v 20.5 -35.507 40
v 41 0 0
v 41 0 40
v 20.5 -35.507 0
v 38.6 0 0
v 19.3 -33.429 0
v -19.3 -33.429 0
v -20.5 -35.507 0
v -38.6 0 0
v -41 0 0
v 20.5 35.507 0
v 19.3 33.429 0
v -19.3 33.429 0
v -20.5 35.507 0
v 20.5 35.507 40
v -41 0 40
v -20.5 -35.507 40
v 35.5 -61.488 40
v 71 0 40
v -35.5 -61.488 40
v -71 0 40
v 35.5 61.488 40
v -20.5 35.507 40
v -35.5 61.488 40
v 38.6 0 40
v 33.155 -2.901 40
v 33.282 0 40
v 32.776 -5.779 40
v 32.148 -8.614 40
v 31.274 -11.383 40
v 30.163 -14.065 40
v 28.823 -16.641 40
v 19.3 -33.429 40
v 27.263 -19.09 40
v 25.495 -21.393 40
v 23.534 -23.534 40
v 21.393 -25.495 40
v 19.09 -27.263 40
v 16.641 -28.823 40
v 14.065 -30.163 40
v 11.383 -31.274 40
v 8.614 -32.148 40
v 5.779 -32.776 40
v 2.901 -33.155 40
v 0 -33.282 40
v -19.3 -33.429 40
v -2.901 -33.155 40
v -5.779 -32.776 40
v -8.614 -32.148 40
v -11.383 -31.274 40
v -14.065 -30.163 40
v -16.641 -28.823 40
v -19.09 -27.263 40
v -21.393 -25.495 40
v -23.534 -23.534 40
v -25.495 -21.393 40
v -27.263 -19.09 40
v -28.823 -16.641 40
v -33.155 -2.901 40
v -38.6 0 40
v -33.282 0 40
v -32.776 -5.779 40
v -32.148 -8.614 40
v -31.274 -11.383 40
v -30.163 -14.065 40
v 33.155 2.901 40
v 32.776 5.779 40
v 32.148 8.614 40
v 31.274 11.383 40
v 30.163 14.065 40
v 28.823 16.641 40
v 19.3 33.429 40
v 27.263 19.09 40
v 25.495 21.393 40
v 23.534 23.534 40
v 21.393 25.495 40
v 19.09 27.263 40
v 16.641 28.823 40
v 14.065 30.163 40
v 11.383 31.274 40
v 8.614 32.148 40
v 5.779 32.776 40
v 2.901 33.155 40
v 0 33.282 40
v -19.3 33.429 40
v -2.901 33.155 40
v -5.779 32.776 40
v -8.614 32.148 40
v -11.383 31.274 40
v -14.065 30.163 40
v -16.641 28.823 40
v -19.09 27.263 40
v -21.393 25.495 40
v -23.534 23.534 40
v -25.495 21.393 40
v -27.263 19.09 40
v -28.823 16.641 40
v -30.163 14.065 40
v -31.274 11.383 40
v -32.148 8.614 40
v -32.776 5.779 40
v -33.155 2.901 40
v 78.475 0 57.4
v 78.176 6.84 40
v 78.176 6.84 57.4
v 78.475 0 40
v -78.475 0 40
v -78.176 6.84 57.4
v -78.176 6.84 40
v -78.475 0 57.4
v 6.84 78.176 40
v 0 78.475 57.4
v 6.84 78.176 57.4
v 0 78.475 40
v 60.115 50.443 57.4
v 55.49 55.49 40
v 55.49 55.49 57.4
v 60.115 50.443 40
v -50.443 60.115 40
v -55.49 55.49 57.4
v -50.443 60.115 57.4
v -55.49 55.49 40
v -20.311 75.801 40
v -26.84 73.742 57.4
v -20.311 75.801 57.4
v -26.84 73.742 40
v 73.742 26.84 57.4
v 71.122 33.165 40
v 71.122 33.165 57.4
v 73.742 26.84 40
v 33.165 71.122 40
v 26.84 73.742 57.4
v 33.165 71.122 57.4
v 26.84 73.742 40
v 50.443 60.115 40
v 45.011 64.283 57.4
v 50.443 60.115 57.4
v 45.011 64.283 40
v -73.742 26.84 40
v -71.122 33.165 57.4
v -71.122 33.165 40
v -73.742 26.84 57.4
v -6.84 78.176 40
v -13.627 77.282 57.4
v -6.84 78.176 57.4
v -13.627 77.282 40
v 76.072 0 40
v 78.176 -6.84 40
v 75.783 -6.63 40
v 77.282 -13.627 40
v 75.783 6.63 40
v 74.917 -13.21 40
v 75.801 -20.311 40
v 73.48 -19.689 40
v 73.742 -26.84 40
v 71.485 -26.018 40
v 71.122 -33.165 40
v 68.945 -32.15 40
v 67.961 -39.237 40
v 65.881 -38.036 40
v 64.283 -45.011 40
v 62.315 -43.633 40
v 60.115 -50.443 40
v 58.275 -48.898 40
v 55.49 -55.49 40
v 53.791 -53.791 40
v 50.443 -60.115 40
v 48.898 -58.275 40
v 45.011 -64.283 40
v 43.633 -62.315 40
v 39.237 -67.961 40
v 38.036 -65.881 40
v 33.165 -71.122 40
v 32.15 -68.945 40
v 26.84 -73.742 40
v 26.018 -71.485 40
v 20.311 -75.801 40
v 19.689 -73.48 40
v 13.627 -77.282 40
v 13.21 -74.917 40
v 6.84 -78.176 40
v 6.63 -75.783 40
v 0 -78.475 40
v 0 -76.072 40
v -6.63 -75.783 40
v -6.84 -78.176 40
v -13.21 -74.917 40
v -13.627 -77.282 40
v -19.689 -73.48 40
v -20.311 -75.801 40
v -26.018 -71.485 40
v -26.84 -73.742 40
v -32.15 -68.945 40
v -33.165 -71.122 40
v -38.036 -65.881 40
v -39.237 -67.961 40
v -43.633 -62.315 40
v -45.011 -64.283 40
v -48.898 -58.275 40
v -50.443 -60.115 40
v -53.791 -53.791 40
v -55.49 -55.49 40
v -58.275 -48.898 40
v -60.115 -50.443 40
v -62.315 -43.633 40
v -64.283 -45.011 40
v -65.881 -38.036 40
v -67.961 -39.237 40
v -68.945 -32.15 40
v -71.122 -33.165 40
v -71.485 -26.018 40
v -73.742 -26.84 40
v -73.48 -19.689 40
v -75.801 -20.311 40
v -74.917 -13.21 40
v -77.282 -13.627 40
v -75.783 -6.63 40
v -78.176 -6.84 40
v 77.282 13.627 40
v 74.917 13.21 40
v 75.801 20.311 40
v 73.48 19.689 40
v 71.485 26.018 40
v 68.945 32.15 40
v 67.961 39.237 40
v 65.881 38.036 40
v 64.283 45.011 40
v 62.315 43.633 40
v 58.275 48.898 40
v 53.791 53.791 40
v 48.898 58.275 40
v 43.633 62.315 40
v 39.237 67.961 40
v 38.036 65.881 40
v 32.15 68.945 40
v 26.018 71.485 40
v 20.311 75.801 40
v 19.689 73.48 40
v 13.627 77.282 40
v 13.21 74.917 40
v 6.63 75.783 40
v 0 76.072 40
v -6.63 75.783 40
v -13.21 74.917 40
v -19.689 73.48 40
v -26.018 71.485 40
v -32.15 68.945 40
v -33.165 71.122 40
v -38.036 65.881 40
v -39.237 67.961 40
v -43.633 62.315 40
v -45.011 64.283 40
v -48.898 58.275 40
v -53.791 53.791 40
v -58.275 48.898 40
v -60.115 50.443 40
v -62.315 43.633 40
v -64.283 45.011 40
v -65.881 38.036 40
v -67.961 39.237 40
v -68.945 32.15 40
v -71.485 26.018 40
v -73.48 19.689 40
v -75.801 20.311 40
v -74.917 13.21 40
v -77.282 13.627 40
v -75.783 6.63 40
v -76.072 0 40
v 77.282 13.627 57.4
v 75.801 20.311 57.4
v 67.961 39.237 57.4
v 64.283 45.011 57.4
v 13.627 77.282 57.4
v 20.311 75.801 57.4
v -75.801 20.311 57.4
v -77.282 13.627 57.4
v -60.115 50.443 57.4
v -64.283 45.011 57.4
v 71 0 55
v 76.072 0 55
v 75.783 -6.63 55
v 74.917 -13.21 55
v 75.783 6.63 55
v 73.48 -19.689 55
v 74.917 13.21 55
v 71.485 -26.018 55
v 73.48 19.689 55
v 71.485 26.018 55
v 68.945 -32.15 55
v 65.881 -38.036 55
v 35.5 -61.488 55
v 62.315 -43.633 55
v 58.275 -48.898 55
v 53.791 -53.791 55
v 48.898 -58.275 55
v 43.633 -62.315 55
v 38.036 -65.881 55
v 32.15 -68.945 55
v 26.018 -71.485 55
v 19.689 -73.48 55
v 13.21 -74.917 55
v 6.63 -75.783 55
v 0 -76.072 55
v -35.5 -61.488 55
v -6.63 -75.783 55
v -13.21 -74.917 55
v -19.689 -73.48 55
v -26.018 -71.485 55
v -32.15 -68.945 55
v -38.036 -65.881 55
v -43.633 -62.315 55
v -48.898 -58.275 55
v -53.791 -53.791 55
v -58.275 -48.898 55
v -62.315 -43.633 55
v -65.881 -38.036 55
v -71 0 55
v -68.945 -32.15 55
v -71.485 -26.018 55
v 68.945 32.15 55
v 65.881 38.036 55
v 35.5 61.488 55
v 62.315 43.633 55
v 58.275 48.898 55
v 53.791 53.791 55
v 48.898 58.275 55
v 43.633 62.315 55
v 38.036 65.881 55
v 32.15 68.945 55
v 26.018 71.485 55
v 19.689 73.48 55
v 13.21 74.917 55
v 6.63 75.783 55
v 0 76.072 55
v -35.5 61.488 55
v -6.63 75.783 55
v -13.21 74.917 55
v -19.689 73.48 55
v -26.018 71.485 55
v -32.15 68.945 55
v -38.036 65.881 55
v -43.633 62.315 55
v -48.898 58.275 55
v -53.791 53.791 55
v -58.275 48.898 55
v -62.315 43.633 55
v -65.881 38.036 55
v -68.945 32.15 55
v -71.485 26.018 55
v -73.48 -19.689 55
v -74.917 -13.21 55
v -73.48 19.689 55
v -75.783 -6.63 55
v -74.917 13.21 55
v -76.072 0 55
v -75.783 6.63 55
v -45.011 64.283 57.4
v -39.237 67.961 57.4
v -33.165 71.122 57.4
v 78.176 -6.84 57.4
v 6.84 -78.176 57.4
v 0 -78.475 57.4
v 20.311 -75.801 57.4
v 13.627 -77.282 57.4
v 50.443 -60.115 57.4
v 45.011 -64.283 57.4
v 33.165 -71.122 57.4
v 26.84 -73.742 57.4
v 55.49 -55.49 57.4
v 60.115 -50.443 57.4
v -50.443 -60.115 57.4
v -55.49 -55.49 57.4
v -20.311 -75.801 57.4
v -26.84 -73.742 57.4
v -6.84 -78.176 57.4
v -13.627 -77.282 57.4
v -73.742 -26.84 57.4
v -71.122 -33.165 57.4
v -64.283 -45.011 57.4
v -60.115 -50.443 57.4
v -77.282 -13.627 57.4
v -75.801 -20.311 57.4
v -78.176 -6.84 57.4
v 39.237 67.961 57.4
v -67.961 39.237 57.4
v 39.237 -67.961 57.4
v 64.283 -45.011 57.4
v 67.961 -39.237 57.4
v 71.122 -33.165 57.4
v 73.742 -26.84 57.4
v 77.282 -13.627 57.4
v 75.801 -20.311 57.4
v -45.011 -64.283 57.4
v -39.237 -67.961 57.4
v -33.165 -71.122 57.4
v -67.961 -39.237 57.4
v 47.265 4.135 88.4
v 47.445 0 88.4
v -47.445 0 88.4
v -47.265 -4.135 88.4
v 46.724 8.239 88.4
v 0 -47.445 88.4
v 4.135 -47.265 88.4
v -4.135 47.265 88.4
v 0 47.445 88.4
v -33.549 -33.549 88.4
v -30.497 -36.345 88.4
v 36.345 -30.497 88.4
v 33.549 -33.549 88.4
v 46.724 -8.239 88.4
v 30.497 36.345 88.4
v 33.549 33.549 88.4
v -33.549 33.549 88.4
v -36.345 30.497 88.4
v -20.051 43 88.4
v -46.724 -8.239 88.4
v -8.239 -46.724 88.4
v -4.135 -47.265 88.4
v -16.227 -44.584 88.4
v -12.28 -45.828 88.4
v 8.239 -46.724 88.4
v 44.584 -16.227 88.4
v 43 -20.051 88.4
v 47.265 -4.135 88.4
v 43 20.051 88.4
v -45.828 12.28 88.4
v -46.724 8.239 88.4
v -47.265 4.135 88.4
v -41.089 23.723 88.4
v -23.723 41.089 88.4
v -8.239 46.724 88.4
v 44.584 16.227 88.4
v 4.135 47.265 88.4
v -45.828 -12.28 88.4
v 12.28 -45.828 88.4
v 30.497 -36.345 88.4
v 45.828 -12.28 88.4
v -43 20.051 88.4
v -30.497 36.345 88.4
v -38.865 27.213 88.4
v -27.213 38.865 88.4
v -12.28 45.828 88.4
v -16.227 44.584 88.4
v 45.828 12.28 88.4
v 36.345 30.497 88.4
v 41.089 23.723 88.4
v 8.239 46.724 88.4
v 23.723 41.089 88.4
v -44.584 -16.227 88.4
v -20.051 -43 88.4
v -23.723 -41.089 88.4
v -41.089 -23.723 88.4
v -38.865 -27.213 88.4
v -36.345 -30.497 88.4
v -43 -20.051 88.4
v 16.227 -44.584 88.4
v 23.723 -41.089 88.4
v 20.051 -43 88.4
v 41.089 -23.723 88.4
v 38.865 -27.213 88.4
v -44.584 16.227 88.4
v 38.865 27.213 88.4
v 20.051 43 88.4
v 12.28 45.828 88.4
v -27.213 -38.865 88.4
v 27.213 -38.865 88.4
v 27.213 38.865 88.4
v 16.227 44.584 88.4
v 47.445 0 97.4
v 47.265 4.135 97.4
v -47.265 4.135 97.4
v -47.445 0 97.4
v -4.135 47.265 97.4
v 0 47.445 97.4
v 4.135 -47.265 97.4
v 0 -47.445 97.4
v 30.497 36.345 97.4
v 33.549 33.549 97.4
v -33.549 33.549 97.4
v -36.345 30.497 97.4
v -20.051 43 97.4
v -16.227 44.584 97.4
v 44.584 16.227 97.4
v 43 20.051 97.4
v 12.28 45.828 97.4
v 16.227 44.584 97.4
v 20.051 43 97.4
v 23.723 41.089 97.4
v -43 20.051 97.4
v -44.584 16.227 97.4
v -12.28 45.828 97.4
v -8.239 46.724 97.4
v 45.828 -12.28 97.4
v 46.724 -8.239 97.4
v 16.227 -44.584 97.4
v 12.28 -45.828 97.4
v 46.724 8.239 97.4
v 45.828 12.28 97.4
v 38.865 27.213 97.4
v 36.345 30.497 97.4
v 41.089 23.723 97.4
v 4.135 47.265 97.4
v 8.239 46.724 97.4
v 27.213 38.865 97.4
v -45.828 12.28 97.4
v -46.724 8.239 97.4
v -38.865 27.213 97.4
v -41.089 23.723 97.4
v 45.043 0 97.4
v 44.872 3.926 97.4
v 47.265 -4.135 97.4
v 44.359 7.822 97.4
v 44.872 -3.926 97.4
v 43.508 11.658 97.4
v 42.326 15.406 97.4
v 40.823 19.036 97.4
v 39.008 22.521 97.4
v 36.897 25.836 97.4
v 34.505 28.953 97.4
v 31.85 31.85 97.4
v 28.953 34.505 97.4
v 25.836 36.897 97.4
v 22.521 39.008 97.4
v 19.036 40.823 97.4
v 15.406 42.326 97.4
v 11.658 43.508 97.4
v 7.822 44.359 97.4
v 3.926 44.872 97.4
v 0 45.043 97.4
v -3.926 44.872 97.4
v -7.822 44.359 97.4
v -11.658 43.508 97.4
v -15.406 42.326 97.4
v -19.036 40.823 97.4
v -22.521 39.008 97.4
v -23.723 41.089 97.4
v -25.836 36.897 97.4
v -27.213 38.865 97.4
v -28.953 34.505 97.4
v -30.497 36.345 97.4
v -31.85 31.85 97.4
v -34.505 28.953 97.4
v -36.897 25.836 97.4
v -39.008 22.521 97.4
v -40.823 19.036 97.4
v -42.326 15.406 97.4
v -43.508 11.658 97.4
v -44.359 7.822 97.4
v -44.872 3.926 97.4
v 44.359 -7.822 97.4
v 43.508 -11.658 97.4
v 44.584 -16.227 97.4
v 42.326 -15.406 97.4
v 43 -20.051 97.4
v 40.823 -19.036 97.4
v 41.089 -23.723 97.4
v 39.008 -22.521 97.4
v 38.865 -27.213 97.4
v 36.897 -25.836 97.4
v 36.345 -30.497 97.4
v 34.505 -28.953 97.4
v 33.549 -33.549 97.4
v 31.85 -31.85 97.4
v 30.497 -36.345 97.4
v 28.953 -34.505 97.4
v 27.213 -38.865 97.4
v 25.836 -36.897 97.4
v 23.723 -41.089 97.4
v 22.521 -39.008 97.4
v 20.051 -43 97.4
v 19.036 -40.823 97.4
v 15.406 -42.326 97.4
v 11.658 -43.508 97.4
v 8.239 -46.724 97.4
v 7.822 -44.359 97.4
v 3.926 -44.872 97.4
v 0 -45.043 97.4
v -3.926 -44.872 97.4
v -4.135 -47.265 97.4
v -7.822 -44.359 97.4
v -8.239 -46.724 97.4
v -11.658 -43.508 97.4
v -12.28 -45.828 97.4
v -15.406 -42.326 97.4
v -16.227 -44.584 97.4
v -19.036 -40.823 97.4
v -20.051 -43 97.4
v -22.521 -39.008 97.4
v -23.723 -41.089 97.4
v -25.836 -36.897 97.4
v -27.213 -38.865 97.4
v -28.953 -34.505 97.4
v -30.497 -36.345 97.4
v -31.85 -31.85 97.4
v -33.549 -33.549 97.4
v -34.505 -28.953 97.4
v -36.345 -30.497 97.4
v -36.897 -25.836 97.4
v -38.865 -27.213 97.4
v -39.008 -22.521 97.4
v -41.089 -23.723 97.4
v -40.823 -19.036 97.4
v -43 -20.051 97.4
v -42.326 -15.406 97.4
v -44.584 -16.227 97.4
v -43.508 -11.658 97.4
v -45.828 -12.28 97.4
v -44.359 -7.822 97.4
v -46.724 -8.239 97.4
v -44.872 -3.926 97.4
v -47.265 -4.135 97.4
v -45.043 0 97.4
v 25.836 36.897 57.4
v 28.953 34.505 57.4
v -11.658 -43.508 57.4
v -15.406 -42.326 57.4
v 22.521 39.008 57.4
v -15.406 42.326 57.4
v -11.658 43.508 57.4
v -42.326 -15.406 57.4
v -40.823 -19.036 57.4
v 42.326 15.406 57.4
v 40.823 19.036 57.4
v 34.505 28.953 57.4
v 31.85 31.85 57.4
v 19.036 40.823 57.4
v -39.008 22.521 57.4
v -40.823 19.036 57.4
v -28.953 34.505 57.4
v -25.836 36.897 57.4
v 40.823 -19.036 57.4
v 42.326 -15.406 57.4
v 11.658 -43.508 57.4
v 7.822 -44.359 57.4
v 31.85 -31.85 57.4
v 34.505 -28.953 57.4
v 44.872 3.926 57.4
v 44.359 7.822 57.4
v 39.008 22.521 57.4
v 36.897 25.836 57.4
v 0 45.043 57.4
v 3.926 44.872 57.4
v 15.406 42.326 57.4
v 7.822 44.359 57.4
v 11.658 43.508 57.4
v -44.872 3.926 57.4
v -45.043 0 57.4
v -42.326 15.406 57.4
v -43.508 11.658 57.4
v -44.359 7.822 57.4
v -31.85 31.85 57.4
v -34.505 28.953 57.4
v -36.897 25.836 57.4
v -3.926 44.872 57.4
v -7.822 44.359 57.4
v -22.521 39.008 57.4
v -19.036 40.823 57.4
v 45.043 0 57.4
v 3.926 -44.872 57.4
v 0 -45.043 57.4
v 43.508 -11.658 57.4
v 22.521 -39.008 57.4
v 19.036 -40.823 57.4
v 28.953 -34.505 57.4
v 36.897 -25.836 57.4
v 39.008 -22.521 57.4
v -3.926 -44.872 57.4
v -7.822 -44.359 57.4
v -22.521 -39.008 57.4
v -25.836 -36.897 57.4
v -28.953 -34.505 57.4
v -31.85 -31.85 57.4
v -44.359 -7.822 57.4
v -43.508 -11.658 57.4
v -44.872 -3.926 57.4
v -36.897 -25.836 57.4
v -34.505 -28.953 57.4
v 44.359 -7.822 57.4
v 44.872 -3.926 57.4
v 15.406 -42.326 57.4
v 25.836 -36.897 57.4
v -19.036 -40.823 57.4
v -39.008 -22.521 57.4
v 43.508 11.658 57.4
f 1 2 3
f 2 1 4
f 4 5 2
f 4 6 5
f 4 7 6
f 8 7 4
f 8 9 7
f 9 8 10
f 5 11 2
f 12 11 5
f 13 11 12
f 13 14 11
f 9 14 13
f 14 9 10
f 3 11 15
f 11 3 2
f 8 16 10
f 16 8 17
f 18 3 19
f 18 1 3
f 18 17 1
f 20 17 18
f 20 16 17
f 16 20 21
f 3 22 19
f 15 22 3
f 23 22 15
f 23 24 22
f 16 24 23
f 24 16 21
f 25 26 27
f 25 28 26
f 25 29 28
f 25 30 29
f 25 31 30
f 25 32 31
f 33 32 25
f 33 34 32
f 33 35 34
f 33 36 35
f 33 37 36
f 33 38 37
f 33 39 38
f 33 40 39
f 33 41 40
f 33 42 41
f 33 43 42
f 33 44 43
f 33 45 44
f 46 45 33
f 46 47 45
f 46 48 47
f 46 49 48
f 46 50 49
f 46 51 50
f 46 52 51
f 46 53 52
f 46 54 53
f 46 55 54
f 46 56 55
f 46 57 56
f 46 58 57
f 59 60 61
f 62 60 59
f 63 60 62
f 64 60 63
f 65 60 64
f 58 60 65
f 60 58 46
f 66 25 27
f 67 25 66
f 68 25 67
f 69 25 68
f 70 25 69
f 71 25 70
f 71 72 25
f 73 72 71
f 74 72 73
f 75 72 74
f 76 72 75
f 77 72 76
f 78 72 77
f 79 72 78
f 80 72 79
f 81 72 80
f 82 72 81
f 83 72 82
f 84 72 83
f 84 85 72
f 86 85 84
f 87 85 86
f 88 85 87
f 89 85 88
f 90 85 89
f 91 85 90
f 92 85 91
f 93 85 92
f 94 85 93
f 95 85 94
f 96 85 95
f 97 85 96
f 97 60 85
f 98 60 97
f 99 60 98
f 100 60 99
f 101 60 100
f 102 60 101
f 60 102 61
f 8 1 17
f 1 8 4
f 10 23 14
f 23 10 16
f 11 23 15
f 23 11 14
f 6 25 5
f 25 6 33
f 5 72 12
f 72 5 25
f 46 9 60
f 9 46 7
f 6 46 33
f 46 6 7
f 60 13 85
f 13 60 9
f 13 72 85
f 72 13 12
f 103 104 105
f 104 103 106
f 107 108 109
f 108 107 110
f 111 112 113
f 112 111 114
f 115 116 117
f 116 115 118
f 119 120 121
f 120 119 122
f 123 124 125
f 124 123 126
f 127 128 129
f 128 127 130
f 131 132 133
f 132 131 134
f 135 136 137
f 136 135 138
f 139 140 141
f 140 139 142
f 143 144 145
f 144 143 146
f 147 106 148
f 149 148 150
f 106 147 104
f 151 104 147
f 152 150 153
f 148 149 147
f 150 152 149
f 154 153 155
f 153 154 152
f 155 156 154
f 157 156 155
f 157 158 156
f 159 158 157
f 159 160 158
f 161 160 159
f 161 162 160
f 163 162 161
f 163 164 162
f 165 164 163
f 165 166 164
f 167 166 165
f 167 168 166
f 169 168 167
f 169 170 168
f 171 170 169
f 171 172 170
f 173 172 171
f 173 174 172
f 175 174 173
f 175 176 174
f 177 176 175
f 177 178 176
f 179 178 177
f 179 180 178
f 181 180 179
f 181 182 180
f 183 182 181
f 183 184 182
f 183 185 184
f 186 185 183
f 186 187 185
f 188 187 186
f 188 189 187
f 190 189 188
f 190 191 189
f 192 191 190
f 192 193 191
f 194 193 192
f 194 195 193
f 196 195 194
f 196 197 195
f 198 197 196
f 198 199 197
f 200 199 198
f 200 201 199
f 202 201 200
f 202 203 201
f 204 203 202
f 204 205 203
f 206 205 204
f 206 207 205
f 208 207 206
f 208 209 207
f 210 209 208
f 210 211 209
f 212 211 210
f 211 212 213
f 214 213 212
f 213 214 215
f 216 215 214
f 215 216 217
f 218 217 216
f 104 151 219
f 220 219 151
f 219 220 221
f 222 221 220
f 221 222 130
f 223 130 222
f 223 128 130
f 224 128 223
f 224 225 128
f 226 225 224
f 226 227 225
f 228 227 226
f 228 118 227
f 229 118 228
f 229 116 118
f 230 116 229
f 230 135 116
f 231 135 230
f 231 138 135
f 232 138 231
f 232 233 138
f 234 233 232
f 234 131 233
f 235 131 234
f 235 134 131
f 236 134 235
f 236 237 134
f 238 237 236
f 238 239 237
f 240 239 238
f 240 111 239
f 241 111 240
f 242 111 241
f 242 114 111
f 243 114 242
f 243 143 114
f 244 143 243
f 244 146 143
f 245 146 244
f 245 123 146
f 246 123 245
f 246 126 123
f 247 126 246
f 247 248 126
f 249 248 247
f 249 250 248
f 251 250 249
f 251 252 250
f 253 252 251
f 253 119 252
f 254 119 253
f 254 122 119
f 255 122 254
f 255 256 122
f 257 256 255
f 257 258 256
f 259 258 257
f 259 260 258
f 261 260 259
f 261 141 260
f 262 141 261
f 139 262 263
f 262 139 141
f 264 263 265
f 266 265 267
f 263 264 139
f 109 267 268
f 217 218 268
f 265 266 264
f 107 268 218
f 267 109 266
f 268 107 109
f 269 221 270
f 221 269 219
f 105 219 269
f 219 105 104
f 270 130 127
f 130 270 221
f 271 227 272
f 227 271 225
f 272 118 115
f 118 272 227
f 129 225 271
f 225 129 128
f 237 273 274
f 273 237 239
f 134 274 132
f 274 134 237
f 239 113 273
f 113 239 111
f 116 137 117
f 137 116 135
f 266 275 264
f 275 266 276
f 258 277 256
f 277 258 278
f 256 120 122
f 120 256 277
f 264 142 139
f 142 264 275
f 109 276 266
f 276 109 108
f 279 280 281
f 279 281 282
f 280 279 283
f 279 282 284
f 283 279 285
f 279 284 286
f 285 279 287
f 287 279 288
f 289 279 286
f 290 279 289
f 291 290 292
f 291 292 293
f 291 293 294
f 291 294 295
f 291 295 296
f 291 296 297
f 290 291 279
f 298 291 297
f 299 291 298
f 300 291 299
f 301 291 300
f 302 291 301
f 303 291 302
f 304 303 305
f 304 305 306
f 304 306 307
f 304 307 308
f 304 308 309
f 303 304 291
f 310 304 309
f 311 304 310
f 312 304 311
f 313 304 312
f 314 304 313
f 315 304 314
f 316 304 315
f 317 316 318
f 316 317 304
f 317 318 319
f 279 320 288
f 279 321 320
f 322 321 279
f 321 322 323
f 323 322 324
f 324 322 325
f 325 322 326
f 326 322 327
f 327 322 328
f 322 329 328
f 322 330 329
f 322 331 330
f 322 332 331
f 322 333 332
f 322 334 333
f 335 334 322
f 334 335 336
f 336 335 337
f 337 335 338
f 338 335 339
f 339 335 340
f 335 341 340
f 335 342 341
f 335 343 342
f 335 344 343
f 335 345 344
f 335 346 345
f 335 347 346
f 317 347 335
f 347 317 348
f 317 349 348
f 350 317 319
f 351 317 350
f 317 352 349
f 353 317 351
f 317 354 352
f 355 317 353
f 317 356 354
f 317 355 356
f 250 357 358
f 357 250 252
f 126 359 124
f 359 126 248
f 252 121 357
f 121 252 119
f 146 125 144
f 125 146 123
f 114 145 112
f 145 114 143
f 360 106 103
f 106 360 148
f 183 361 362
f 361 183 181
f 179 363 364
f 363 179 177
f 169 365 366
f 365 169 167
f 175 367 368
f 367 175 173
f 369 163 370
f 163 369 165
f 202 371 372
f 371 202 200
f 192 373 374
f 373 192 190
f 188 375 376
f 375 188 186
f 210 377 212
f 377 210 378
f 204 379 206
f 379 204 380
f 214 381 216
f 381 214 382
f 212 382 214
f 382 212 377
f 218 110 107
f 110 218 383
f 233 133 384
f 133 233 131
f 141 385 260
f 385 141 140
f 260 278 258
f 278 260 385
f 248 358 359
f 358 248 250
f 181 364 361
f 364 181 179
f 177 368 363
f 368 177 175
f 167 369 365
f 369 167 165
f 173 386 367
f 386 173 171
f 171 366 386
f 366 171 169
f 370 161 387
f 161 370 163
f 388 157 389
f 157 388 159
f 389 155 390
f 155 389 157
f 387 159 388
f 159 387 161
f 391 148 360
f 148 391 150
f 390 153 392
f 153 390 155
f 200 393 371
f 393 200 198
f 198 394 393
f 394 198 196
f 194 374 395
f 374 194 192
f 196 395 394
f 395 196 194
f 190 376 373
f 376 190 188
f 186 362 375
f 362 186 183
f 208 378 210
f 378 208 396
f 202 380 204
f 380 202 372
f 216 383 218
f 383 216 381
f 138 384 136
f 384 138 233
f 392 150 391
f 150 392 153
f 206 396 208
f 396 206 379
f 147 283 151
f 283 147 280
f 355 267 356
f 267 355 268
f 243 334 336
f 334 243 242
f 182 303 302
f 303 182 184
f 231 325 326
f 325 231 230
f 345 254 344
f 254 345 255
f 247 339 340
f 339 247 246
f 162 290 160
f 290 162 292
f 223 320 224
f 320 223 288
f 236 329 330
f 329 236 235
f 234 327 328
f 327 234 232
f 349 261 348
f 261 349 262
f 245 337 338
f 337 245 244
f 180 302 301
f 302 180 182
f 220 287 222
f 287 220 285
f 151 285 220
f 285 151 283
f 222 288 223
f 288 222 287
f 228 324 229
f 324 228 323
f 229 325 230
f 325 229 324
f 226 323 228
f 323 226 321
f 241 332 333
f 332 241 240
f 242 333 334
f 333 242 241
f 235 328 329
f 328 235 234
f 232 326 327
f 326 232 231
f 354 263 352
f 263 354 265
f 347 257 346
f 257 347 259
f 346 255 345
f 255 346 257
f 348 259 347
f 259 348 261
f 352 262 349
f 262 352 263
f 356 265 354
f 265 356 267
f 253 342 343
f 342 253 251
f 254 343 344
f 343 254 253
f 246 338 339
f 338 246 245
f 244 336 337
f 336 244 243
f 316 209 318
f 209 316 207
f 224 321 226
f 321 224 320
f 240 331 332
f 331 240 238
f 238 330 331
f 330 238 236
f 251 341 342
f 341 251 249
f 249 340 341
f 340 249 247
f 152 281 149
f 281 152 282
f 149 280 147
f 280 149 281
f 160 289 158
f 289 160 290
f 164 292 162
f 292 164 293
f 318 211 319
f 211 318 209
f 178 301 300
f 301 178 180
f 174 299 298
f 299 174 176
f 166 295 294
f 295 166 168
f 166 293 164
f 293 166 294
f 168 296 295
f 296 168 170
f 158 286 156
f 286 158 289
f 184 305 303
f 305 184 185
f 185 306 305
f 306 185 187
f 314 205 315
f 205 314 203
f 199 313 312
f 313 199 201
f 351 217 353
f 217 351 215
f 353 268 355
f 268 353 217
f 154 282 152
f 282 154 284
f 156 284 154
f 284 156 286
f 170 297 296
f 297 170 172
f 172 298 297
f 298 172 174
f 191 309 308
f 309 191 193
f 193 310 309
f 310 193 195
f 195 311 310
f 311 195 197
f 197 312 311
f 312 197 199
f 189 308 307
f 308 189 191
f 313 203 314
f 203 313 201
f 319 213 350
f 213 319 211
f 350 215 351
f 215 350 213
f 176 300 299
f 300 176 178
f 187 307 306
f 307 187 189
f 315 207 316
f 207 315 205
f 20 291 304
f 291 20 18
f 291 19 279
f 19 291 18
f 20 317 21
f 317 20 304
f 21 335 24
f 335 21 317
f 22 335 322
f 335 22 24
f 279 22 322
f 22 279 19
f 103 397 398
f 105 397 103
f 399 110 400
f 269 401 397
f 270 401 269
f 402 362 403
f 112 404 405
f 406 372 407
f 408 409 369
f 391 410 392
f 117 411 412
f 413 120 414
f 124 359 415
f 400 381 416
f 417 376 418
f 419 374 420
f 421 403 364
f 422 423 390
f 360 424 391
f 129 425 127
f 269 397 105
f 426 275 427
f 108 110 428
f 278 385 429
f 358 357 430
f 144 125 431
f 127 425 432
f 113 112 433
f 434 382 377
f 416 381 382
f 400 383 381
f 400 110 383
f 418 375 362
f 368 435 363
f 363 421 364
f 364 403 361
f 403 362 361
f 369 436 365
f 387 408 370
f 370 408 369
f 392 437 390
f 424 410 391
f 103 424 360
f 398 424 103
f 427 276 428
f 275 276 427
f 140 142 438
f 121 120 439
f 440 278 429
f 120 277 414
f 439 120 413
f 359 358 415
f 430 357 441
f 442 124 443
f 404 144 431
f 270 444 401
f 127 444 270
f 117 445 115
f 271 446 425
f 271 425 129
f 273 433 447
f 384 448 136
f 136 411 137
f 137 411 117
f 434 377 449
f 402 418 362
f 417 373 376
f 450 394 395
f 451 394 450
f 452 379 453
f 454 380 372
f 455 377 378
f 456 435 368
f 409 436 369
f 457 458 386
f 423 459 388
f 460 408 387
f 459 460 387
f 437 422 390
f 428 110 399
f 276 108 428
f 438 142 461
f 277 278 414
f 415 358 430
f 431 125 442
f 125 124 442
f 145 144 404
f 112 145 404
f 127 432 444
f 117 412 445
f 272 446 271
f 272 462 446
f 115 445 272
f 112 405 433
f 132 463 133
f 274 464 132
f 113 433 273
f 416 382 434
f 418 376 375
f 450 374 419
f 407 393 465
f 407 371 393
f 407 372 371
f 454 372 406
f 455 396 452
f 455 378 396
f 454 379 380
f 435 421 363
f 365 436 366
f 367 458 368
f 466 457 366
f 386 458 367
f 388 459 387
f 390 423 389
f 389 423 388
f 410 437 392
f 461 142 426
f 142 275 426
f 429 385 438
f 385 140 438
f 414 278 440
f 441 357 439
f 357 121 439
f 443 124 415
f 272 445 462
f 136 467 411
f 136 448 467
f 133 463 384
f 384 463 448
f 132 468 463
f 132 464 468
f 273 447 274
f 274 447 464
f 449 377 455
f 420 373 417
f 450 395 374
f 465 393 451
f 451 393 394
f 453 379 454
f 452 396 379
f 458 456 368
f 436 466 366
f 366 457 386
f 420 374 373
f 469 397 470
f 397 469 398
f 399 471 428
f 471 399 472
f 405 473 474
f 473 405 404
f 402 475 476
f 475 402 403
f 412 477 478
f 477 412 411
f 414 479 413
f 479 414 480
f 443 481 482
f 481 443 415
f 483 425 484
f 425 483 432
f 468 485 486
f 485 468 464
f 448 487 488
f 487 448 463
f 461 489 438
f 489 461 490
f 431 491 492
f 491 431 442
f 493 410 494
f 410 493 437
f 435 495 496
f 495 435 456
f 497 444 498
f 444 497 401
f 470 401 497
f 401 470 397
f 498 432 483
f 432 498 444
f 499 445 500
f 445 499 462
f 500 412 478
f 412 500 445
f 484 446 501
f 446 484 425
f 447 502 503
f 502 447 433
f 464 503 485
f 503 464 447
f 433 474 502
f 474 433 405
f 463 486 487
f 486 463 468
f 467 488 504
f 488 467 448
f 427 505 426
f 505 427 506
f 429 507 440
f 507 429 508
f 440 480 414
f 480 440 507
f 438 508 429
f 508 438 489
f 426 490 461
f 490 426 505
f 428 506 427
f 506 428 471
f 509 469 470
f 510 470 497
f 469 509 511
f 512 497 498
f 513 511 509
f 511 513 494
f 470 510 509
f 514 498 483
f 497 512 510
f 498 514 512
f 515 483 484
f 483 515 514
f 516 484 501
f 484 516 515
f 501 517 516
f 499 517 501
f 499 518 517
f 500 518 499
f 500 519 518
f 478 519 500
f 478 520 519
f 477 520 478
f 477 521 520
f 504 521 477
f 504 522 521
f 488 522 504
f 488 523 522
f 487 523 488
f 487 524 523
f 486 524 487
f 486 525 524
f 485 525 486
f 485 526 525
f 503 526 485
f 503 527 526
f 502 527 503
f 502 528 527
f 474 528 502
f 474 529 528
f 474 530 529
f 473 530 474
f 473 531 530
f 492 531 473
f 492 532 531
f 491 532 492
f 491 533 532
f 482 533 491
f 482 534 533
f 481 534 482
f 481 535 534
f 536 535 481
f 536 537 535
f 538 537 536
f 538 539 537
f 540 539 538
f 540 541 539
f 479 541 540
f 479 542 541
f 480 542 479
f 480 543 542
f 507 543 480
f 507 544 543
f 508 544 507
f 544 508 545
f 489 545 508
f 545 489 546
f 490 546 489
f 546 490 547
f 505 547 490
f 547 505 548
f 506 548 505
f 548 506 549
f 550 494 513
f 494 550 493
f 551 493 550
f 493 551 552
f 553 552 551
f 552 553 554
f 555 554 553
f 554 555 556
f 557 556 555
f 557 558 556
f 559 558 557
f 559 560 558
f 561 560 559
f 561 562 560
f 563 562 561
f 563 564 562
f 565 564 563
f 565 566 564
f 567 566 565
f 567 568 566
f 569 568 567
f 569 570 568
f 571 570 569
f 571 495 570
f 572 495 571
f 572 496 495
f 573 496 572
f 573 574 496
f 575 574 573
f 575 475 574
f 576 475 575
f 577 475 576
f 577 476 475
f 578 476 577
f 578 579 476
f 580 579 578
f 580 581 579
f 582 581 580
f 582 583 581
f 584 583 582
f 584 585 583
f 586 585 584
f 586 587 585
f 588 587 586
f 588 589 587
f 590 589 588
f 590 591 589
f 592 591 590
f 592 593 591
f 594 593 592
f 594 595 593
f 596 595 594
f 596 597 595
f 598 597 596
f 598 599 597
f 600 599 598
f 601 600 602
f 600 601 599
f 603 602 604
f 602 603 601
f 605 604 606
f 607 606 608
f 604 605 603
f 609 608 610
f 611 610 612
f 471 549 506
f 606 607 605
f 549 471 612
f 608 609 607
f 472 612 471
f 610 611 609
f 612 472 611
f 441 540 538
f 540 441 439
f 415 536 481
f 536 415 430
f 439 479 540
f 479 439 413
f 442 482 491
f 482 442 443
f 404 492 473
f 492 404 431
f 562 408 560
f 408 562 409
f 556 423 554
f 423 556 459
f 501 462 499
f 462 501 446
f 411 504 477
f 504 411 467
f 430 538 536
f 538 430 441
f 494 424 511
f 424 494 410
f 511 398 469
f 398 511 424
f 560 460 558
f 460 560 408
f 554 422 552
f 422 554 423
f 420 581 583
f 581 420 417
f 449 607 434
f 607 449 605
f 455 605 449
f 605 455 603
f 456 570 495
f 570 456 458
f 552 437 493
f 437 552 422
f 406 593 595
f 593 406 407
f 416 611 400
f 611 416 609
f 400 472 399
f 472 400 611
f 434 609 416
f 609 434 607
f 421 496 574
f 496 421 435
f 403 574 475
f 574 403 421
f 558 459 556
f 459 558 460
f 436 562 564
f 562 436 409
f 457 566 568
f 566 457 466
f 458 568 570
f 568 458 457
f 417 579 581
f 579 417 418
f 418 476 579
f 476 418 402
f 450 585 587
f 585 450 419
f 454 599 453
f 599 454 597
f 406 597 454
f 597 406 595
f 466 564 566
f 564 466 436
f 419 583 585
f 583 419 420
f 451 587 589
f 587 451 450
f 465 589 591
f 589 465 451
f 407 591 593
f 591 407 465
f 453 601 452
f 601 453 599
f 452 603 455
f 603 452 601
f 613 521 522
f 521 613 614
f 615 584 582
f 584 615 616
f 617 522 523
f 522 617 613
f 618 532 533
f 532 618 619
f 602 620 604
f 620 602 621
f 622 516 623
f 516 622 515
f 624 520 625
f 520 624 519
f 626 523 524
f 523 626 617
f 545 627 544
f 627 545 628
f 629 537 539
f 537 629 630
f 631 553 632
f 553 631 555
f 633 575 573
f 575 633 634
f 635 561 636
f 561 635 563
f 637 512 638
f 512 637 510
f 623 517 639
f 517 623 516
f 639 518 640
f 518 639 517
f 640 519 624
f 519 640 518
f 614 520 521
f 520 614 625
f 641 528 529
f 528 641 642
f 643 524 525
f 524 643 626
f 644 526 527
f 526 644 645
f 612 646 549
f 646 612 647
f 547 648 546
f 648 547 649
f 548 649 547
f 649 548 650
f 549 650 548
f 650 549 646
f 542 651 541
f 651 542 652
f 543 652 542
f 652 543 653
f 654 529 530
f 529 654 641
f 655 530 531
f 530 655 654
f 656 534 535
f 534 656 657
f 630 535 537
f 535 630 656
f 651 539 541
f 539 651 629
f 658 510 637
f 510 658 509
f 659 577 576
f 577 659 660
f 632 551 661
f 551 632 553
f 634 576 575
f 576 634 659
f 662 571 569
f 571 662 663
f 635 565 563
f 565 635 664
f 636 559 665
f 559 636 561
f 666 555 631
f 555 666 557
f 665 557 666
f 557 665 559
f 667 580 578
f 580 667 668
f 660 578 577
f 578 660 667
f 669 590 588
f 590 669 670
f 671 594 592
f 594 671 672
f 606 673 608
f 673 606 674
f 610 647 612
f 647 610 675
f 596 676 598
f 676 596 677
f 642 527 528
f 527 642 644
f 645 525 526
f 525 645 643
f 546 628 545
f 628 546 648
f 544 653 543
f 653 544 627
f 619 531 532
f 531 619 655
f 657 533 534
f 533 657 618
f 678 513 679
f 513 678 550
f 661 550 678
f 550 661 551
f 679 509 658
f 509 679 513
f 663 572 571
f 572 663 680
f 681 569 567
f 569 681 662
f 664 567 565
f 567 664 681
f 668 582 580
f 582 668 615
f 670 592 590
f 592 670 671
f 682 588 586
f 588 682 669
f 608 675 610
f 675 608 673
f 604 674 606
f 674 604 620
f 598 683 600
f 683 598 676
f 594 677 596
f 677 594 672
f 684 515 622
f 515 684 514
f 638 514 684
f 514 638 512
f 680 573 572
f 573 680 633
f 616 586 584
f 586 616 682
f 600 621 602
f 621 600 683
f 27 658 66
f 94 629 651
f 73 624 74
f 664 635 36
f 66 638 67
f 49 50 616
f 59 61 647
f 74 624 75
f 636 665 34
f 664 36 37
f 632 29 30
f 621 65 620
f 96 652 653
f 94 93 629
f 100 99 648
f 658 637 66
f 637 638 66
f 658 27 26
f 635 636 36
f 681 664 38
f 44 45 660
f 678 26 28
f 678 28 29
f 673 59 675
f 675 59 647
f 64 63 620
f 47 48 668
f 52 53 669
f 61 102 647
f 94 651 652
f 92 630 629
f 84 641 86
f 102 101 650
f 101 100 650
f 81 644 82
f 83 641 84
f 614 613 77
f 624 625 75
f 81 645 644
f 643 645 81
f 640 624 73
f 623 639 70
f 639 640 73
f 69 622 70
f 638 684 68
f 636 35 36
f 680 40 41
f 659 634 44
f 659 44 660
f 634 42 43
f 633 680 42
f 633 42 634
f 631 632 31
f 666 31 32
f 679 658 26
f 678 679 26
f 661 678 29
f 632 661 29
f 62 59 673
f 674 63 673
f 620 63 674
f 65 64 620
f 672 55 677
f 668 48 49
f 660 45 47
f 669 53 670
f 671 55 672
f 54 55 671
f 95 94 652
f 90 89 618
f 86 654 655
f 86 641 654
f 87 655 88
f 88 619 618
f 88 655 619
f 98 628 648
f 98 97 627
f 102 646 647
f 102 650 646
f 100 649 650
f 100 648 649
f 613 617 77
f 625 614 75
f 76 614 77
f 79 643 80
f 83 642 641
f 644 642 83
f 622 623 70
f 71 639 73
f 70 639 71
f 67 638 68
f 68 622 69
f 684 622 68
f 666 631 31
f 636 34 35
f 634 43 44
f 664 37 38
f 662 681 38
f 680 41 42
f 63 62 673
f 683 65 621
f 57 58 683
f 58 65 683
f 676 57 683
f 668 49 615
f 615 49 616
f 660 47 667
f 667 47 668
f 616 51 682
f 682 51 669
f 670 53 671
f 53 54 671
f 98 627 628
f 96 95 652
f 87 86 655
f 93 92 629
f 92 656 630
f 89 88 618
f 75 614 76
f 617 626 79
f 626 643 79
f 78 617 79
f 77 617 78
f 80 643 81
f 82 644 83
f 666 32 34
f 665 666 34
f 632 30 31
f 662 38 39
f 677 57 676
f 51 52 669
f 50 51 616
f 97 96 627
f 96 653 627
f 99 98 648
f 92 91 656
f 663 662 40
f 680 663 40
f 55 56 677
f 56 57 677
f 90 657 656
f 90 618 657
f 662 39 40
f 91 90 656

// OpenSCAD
use <MCAD/regular_shapes.scad>

min_thickness = 1.2;
2min_thickness = 2 * min_thickness;

socket_dia=82;
socket_z=40;
socket_id=66.5;
lip_z=15;
lip_id=142;
lip_od=152; // measured 150 allow for clearance
lip_od_od =lip_od+ 2 * 2min_thickness;

upper_tube_id=90;
upper_tube_od=90 + 2 * 2min_thickness;

echo("upper_tube_od", upper_tube_od);
echo("lip_od_od", lip_od_od);
transition_z = (lip_od_od - upper_tube_od) / 2;

upper_tube_z=max(40 - transition_z, 0);
transition_start_z = socket_z + lip_z + 2 * min_thickness;

module cylinder_outer(height,radius,fn=72){
   fudge = 1/cos(180/fn);
   cylinder(h=height,r=radius*fudge,$fn=fn);}

module cone_outer(height,radius1,radius2,fn=72){
   fudge = 1/cos(180/fn);
   cylinder(h=height,r1=radius1*fudge,r2=radius2*fudge,$fn=fn);}

module OuterShell() {
    difference() {
        linear_extrude(socket_z) hexagon(socket_dia / 2);
        linear_extrude(socket_z)  hexagon((socket_dia - 2 * 2min_thickness) / 2);
    }

    lower_cylinder_z=lip_z + 2 * min_thickness;

    translate([0, 0, socket_z]) {
        linear_extrude(lip_z) hexagon(lip_id / 2);
        difference() {
            cylinder_outer(lip_z, lip_od_od / 2);
            cylinder_outer(lip_z, lip_od / 2);
        } 
    }

    translate([0, 0, socket_z + lip_z]) {
        cylinder_outer(2 * min_thickness, lip_od_od / 2);
    }
    translate([0, 0, transition_start_z]) cone_outer(transition_z, lip_od_od / 2, upper_tube_od / 2);
    echo("transition_z", transition_z);
    translate([0, 0, socket_z + lip_z + (2 * min_thickness) + transition_z]) cylinder_outer(upper_tube_z, upper_tube_od / 2);
}

module InnerHallow() {
    translate([0, 0, transition_start_z]) cylinder_outer(transition_z + upper_tube_z, upper_tube_id / 2);
    translate([0, 0, socket_z]) cone_outer(lip_z + 2 * min_thickness, socket_id / 2, upper_tube_id / 2);
}

difference() {
    OuterShell();
    InnerHallow();
}
